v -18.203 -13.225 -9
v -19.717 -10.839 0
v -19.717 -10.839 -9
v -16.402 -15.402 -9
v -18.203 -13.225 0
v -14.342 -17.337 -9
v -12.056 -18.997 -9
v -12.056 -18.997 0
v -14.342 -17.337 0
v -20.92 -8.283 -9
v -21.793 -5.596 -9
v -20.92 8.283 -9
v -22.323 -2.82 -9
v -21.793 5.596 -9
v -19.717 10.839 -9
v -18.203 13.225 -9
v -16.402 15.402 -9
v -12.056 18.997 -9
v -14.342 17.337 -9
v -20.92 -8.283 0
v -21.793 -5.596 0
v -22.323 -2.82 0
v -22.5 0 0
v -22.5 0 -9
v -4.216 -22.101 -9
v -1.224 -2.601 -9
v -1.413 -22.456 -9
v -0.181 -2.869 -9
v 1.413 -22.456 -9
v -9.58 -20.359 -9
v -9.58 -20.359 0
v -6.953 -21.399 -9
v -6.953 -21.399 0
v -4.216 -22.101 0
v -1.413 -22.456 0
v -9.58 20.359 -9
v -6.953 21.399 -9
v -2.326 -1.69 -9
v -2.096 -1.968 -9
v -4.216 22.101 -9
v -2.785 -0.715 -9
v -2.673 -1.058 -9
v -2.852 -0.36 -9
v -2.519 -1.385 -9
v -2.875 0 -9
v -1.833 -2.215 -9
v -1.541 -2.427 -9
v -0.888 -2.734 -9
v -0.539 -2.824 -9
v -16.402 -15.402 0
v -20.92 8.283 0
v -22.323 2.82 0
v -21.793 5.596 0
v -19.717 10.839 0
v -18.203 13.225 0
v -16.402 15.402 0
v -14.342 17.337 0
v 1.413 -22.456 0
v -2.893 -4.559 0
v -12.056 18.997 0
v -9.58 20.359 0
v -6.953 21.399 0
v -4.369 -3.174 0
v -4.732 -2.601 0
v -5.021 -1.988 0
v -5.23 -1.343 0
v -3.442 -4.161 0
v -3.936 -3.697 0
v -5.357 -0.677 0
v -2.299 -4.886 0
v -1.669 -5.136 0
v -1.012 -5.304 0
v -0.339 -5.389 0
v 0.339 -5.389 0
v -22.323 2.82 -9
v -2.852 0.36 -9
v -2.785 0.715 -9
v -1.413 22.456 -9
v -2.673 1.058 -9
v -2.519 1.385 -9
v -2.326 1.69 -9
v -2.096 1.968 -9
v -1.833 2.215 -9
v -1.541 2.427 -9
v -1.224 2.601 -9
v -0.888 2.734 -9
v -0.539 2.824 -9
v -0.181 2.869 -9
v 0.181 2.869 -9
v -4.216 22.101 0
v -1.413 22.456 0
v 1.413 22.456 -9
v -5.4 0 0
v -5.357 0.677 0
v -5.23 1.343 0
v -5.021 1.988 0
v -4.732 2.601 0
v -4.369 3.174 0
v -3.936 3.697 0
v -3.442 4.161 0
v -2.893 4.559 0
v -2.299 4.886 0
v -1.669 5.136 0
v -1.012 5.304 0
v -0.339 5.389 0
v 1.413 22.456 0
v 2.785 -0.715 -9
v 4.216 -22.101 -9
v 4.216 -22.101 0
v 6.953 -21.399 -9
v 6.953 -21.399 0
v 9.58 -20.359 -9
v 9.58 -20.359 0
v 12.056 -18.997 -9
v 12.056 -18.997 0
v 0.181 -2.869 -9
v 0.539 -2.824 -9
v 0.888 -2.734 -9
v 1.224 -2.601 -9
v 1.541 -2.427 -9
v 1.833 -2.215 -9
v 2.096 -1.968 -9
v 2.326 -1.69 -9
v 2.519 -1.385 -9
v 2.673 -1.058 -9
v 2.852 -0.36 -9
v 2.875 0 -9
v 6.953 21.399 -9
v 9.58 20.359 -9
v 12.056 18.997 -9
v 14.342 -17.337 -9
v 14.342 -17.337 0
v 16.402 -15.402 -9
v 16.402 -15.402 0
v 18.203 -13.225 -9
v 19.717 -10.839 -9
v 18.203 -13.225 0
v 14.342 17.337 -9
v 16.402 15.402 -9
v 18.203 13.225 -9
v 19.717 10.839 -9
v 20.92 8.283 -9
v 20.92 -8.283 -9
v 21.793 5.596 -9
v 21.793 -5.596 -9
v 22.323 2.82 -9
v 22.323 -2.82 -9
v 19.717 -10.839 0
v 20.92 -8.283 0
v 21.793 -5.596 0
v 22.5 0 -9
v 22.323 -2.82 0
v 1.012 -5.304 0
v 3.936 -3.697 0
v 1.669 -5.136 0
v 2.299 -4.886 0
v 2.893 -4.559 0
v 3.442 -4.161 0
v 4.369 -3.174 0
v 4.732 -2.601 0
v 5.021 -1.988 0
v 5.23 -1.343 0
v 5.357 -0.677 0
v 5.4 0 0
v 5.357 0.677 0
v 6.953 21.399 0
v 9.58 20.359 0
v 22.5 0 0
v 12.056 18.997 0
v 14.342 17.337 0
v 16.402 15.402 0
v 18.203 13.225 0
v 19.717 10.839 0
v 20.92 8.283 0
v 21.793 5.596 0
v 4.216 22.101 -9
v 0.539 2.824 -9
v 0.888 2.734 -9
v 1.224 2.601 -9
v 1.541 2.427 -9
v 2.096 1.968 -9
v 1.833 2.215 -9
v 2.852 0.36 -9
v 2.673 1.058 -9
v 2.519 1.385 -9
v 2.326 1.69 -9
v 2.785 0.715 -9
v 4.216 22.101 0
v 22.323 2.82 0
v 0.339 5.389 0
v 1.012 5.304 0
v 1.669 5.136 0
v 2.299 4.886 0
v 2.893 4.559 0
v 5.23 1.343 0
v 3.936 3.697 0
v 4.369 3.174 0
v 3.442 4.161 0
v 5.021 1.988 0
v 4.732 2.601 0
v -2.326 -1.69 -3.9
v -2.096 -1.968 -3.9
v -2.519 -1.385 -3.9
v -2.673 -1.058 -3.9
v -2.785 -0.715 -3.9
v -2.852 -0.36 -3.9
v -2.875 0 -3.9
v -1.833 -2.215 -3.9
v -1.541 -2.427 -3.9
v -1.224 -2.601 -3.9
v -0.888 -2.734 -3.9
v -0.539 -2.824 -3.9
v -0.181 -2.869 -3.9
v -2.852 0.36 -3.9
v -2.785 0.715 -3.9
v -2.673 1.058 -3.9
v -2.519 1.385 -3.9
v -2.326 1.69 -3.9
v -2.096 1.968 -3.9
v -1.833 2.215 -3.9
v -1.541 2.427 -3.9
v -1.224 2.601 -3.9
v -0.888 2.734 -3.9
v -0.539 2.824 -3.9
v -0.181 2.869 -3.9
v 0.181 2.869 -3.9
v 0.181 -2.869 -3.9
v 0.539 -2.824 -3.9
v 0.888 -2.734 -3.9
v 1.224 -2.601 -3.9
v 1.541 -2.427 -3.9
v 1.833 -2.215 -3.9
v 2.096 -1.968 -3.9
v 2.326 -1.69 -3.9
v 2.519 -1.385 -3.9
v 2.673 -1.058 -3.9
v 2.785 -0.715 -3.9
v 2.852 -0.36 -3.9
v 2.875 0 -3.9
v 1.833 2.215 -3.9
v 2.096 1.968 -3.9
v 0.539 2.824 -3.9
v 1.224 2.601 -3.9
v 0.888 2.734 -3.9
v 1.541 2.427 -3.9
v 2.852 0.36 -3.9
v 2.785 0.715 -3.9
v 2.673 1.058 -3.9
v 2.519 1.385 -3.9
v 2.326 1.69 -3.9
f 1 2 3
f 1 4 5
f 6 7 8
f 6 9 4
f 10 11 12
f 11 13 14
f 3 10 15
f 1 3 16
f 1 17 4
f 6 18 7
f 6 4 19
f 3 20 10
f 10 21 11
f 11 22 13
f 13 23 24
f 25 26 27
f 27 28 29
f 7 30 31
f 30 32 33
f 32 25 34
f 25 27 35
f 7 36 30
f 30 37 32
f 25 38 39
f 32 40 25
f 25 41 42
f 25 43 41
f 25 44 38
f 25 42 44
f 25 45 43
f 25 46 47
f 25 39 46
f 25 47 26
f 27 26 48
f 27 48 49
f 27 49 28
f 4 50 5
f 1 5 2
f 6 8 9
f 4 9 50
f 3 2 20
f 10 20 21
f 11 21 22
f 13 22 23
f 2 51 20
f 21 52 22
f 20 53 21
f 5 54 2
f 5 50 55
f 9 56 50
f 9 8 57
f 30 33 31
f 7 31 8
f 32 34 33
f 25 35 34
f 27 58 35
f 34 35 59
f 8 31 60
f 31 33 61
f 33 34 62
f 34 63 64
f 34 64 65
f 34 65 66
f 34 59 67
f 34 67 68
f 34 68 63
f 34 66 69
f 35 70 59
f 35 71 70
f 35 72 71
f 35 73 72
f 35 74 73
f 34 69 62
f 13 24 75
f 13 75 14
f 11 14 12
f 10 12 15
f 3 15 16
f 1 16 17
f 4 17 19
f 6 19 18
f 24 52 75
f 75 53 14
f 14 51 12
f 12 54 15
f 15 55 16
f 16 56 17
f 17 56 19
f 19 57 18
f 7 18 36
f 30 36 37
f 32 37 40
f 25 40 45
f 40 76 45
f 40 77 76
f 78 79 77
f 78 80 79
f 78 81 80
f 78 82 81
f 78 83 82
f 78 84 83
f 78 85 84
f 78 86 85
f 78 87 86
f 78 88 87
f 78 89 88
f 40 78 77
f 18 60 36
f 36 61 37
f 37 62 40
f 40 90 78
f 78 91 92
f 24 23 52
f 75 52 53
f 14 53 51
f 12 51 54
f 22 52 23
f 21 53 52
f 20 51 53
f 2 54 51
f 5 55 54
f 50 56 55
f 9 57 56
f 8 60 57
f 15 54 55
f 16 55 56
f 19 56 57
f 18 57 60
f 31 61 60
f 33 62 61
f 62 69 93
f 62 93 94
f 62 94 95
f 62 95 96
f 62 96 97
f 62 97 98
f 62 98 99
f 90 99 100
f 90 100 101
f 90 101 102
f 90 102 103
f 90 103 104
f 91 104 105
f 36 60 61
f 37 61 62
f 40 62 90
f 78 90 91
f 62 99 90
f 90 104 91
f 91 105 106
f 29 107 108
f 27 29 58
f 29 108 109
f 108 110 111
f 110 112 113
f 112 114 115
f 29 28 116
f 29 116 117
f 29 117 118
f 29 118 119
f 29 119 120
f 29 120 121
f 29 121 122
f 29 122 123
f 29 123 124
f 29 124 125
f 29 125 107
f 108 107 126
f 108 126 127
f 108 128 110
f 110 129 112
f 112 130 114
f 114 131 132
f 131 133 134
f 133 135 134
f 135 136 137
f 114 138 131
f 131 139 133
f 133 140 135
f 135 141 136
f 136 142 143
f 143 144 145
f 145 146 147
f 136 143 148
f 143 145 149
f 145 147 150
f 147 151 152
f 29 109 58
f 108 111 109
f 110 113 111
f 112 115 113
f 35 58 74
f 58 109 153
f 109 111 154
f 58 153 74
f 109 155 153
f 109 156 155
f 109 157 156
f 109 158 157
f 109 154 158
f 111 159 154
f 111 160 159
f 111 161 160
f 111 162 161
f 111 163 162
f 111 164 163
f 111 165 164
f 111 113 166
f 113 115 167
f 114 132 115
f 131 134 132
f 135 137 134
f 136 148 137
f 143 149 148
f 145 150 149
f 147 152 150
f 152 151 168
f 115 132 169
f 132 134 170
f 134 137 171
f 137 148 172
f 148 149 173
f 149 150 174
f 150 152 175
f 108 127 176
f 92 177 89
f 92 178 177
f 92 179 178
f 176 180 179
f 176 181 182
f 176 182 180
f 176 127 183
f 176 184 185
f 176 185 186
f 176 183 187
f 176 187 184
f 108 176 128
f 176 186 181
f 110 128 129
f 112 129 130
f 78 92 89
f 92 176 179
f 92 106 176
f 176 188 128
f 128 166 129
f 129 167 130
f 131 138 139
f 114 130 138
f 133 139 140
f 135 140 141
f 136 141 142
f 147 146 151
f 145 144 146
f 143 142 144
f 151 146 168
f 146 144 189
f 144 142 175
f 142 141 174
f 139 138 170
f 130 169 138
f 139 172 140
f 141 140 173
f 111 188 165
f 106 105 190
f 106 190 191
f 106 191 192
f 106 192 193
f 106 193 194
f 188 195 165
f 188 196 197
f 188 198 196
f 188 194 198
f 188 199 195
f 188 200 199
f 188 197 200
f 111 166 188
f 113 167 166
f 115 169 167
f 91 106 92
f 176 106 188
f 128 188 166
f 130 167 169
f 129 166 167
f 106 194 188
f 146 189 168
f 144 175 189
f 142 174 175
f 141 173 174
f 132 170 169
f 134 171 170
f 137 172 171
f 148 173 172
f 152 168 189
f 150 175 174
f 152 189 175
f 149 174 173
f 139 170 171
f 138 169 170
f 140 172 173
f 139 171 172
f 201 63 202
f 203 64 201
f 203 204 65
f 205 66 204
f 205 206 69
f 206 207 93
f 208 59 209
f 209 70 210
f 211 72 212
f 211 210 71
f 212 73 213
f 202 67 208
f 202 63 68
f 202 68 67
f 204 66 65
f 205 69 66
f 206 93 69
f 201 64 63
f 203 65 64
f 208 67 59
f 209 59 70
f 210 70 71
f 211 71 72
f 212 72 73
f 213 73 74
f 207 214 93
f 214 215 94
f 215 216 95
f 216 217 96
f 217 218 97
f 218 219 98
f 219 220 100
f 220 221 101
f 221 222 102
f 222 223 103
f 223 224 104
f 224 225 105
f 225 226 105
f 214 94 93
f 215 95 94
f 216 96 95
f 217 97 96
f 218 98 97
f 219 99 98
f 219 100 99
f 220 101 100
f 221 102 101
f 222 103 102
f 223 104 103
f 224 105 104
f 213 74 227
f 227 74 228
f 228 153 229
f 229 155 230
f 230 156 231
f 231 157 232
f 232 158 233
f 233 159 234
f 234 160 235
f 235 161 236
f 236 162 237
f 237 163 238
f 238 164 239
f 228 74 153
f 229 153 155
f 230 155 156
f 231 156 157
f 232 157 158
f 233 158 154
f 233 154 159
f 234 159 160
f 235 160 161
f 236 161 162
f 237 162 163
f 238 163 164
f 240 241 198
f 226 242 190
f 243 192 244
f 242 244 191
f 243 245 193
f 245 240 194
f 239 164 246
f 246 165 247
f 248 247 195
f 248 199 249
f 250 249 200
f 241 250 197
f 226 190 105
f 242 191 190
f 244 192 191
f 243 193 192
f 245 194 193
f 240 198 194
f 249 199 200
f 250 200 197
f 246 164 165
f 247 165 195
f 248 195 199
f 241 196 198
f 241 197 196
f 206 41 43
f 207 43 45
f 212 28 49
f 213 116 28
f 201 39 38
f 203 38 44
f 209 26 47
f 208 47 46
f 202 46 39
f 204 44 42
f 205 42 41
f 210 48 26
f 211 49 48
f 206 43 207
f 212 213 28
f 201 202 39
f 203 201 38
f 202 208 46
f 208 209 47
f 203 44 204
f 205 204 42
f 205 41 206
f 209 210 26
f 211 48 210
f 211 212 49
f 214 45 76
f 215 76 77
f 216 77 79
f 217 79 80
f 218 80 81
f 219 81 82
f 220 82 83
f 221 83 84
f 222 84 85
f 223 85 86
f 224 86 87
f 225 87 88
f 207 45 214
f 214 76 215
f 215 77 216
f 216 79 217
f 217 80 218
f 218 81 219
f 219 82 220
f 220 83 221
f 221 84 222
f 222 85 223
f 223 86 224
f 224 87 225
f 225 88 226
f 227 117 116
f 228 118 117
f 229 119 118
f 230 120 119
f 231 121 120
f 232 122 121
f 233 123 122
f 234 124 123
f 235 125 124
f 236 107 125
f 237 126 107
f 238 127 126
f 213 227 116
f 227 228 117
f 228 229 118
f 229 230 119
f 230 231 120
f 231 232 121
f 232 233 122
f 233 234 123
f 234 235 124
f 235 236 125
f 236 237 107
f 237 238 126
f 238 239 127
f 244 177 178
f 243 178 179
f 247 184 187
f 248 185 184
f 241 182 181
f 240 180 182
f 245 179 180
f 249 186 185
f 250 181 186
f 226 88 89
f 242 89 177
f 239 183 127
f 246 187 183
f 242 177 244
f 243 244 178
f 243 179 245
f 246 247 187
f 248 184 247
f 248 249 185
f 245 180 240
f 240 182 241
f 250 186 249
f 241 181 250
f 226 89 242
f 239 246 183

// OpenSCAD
$fn = 50;

difference() {
	union() {
		translate(v = [0, 0, -9.0]) {
			cylinder(h = 9, r = 22.5);
		}
		#translate(v = [0, 0, -12.0]) {
			cylinder(h = 12, r = 2.875);
		}
	}
	union() {
		translate(v = [0, 0, 0]) {
			rotate(a = [0, 0, 0]) {
				difference() {
					union() {
						translate(v = [0, 0, -12.0]) {
							cylinder(h = 12, r = 2.6);
						}
						translate(v = [0, 0, -3.9]) {
							cylinder(h = 3.9, r1 = 2.875, r2 = 5.4);
						}
						translate(v = [0, 0, -12.0]) {
							cylinder(h = 12, r = 2.875);
						}
						translate(v = [0, 0, -12.0]) {
							cylinder(h = 12, r = 2.6);
						}
					}
					union();
				}
			}
		}
	}
}
